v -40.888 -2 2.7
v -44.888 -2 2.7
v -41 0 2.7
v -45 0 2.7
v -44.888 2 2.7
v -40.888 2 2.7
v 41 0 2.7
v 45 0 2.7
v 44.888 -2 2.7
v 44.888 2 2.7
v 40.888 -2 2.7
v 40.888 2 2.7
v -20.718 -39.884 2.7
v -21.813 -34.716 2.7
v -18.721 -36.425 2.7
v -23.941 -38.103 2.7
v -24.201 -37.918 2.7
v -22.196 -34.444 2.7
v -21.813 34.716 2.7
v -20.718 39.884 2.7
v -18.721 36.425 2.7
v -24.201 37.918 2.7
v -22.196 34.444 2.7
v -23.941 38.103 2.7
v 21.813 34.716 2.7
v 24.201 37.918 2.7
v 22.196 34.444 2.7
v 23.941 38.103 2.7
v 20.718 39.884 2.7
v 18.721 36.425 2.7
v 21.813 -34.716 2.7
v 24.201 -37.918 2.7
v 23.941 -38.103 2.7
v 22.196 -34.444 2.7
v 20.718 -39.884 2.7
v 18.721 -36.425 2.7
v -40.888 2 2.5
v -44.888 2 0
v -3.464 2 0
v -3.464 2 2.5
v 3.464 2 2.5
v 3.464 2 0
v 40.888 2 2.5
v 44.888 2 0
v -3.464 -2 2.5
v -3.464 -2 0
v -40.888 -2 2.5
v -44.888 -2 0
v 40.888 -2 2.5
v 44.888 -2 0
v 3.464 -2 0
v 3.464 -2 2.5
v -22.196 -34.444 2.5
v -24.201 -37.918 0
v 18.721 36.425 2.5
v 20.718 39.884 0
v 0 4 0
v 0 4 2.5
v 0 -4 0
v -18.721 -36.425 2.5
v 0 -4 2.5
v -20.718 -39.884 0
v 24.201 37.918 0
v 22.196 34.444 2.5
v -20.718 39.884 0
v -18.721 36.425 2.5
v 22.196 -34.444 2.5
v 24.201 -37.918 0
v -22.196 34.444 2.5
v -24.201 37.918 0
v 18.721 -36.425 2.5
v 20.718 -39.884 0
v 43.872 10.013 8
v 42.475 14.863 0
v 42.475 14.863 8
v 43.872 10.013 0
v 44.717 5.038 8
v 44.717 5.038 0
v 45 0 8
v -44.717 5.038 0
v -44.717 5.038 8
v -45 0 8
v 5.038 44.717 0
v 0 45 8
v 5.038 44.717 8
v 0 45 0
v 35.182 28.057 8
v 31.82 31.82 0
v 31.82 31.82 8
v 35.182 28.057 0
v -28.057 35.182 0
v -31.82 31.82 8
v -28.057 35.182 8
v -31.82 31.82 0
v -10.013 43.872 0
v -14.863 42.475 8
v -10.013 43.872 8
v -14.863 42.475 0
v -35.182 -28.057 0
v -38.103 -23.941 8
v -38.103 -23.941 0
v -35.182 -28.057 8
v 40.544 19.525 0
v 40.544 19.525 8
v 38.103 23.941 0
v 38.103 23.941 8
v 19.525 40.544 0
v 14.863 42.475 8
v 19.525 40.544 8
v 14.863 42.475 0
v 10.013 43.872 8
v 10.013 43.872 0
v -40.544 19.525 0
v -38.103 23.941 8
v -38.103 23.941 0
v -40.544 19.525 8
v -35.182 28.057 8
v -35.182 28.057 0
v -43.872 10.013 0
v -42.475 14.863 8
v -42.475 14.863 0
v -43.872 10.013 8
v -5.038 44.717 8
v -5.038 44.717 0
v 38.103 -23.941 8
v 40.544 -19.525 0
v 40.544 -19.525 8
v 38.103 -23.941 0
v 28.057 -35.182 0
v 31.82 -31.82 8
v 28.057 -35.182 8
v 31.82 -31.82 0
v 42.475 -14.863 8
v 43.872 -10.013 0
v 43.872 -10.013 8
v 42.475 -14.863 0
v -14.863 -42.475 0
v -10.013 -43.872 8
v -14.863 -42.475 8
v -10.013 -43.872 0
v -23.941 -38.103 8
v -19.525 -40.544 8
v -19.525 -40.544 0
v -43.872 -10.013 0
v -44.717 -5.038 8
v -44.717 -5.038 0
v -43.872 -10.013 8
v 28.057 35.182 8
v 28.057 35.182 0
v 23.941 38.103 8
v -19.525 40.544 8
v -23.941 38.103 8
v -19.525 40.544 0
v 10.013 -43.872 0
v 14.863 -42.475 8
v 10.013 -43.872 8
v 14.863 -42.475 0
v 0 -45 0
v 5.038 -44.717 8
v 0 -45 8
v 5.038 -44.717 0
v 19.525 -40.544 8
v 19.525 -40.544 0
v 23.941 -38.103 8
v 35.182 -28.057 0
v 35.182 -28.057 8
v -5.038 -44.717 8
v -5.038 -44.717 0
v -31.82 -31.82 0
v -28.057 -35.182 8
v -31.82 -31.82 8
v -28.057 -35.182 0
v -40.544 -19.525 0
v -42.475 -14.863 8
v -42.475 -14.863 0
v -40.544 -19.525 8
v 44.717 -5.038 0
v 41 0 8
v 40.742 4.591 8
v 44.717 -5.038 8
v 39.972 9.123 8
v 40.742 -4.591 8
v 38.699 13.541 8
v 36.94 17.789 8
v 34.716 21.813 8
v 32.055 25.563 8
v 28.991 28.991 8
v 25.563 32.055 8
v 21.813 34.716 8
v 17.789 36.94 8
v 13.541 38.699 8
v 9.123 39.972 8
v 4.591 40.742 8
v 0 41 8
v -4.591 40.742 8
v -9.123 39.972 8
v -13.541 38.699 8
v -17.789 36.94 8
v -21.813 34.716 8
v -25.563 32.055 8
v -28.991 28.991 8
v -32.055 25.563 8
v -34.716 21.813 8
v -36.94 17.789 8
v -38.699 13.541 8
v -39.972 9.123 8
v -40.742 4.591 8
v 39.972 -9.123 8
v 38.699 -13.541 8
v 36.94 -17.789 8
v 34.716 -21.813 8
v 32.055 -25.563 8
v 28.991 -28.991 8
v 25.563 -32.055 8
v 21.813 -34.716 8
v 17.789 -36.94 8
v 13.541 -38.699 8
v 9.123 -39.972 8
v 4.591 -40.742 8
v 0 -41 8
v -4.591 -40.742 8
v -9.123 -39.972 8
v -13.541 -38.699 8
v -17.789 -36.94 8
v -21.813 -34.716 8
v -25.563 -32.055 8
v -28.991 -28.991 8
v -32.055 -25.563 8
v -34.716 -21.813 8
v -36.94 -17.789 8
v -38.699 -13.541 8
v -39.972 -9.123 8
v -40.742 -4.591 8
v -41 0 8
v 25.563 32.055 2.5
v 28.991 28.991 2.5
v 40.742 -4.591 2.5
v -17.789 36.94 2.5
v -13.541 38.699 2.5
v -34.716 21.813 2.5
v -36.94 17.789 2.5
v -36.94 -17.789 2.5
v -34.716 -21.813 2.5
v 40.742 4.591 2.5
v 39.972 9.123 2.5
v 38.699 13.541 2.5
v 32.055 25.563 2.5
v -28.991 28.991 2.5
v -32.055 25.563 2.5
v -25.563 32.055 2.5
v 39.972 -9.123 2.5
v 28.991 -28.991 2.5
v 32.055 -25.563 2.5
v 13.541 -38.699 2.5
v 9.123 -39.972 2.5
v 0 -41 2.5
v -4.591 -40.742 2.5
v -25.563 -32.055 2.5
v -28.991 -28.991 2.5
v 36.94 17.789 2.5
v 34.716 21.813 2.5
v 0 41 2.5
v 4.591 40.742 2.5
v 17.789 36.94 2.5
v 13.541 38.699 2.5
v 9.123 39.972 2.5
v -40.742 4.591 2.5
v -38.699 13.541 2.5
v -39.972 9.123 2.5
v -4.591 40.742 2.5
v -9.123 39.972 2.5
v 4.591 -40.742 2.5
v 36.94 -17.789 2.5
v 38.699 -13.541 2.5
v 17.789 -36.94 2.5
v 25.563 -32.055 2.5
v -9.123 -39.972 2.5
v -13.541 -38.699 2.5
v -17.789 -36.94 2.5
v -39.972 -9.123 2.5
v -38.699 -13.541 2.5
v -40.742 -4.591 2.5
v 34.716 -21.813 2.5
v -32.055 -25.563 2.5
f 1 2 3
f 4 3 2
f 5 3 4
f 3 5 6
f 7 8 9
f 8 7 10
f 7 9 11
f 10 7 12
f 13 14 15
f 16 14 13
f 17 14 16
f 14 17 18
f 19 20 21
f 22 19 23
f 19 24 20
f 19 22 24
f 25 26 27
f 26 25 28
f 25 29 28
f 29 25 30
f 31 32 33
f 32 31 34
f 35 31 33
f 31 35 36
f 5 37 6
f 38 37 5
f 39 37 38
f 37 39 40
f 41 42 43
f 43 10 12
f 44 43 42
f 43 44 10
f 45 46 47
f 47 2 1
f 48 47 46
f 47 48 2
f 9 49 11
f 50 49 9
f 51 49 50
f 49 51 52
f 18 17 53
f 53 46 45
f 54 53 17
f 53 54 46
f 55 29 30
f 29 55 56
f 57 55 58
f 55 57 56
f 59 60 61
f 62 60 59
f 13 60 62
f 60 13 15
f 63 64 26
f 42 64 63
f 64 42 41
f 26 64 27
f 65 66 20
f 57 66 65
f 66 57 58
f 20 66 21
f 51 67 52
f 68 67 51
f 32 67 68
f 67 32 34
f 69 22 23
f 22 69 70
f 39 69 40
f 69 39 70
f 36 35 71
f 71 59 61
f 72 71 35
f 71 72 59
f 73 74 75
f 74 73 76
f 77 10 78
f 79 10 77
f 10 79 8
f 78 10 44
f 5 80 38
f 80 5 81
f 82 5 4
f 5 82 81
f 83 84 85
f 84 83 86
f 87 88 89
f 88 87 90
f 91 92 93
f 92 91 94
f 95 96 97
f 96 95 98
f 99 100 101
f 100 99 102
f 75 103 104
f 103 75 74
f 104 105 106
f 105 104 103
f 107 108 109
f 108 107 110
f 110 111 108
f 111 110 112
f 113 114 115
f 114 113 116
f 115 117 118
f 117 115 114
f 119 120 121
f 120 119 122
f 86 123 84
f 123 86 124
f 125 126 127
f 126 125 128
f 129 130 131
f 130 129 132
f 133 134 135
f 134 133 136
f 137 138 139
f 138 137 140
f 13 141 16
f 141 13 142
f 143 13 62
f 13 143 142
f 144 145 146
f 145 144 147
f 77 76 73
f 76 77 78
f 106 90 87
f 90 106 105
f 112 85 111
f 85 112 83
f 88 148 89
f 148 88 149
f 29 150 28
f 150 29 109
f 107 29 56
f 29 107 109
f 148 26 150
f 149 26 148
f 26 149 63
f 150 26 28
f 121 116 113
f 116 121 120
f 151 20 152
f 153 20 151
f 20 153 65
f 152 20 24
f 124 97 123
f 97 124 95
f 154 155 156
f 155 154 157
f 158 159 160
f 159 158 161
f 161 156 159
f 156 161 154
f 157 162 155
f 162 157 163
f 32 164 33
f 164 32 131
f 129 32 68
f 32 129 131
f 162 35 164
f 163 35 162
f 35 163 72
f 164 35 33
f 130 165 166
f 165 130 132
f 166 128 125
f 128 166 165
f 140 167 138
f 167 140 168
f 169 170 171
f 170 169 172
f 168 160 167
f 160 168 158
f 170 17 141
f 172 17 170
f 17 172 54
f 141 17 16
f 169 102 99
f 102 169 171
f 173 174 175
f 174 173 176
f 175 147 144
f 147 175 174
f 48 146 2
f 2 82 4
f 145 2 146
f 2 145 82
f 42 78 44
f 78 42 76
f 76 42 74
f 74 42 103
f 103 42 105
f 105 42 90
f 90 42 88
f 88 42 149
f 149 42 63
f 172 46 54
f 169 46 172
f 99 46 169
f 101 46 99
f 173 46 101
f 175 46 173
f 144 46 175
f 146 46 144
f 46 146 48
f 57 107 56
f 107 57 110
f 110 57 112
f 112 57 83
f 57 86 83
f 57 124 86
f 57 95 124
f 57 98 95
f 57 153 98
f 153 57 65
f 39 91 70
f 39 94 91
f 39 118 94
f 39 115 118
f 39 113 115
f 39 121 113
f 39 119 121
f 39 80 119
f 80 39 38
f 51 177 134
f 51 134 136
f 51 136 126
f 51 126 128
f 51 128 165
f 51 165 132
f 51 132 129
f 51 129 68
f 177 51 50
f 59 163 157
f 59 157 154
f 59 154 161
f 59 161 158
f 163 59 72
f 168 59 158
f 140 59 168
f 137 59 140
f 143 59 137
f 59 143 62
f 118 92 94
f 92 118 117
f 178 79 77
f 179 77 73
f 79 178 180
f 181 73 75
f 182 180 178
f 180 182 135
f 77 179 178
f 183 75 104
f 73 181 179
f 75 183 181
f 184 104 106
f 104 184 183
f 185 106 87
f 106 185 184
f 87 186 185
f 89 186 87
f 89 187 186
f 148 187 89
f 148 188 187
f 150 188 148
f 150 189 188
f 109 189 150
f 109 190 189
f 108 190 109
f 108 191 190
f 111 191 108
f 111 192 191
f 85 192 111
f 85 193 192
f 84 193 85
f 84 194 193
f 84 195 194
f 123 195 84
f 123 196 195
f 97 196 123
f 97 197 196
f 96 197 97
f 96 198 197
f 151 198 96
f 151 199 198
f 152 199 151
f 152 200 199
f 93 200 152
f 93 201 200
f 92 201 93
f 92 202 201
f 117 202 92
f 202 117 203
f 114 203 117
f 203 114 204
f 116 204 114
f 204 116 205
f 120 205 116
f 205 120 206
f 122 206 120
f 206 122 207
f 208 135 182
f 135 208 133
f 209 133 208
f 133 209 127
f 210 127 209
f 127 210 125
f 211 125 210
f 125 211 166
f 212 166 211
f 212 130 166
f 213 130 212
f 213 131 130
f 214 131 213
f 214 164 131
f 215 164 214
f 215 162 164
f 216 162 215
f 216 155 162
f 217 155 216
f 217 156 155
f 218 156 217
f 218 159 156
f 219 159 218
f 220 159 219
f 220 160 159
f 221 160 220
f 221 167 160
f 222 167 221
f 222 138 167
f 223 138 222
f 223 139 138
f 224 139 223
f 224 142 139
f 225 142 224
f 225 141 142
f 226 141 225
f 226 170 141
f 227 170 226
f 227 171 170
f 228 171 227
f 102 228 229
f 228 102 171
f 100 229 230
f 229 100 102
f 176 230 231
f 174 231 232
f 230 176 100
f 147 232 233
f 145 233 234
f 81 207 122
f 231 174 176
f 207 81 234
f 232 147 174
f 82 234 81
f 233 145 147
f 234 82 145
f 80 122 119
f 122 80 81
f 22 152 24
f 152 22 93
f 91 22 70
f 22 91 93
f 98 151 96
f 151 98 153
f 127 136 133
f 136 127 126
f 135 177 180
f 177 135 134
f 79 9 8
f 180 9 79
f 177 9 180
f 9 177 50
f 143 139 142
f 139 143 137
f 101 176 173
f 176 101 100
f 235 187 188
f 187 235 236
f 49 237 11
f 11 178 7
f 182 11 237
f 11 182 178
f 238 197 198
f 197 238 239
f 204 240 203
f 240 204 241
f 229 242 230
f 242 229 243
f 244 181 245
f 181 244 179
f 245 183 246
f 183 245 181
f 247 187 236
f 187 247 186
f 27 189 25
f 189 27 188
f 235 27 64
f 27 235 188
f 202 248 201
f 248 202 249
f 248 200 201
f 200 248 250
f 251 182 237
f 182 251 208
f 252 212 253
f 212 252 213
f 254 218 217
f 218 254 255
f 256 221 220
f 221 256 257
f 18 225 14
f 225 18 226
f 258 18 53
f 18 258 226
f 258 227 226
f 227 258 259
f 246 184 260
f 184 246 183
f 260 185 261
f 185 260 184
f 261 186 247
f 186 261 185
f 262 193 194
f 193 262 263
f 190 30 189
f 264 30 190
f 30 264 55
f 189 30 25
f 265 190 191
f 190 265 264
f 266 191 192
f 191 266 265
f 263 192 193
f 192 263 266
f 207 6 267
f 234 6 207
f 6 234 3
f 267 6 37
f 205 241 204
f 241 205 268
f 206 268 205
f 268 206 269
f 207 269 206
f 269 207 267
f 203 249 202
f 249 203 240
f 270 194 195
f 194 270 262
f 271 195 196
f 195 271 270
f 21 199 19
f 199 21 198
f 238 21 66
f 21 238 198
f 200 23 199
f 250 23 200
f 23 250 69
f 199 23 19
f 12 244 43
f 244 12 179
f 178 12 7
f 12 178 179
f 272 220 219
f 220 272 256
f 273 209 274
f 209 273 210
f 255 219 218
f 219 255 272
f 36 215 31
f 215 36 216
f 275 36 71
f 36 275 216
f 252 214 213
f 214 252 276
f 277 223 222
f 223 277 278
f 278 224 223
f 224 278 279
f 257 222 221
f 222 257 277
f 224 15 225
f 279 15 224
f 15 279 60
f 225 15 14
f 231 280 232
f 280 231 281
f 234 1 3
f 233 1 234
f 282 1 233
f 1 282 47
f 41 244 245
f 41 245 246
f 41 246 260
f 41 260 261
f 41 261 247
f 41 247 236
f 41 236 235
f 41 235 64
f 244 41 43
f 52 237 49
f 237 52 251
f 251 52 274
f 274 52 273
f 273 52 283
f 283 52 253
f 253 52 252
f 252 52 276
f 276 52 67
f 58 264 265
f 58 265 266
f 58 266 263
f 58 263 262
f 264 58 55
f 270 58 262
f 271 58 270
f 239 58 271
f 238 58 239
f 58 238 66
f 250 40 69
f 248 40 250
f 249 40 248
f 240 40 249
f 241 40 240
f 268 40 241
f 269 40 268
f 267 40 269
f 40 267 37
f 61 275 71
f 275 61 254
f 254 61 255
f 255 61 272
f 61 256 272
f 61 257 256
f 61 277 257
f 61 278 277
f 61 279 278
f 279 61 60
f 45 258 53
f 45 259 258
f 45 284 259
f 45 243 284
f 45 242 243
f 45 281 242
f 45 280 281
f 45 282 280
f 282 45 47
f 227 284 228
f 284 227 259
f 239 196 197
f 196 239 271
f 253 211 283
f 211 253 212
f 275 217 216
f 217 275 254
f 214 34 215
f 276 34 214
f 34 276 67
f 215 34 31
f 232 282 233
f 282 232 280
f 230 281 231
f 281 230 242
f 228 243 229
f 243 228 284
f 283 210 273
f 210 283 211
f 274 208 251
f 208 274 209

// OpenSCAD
// Checkpoint 4c - Capstone reference: a coaster with a raised lip and a
// drainage channel. Stands in for "something you actually need".
$fn = 56;
difference() {
  cylinder(h = 8, r = 45);
  translate([0, 0, 2.5]) cylinder(h = 8, r = 41);
  for (i = [0 : 5])
    rotate([0, 0, i * 60])
      translate([0, 0, 1.2])
        cube([90, 4, 3], center = true);
}
